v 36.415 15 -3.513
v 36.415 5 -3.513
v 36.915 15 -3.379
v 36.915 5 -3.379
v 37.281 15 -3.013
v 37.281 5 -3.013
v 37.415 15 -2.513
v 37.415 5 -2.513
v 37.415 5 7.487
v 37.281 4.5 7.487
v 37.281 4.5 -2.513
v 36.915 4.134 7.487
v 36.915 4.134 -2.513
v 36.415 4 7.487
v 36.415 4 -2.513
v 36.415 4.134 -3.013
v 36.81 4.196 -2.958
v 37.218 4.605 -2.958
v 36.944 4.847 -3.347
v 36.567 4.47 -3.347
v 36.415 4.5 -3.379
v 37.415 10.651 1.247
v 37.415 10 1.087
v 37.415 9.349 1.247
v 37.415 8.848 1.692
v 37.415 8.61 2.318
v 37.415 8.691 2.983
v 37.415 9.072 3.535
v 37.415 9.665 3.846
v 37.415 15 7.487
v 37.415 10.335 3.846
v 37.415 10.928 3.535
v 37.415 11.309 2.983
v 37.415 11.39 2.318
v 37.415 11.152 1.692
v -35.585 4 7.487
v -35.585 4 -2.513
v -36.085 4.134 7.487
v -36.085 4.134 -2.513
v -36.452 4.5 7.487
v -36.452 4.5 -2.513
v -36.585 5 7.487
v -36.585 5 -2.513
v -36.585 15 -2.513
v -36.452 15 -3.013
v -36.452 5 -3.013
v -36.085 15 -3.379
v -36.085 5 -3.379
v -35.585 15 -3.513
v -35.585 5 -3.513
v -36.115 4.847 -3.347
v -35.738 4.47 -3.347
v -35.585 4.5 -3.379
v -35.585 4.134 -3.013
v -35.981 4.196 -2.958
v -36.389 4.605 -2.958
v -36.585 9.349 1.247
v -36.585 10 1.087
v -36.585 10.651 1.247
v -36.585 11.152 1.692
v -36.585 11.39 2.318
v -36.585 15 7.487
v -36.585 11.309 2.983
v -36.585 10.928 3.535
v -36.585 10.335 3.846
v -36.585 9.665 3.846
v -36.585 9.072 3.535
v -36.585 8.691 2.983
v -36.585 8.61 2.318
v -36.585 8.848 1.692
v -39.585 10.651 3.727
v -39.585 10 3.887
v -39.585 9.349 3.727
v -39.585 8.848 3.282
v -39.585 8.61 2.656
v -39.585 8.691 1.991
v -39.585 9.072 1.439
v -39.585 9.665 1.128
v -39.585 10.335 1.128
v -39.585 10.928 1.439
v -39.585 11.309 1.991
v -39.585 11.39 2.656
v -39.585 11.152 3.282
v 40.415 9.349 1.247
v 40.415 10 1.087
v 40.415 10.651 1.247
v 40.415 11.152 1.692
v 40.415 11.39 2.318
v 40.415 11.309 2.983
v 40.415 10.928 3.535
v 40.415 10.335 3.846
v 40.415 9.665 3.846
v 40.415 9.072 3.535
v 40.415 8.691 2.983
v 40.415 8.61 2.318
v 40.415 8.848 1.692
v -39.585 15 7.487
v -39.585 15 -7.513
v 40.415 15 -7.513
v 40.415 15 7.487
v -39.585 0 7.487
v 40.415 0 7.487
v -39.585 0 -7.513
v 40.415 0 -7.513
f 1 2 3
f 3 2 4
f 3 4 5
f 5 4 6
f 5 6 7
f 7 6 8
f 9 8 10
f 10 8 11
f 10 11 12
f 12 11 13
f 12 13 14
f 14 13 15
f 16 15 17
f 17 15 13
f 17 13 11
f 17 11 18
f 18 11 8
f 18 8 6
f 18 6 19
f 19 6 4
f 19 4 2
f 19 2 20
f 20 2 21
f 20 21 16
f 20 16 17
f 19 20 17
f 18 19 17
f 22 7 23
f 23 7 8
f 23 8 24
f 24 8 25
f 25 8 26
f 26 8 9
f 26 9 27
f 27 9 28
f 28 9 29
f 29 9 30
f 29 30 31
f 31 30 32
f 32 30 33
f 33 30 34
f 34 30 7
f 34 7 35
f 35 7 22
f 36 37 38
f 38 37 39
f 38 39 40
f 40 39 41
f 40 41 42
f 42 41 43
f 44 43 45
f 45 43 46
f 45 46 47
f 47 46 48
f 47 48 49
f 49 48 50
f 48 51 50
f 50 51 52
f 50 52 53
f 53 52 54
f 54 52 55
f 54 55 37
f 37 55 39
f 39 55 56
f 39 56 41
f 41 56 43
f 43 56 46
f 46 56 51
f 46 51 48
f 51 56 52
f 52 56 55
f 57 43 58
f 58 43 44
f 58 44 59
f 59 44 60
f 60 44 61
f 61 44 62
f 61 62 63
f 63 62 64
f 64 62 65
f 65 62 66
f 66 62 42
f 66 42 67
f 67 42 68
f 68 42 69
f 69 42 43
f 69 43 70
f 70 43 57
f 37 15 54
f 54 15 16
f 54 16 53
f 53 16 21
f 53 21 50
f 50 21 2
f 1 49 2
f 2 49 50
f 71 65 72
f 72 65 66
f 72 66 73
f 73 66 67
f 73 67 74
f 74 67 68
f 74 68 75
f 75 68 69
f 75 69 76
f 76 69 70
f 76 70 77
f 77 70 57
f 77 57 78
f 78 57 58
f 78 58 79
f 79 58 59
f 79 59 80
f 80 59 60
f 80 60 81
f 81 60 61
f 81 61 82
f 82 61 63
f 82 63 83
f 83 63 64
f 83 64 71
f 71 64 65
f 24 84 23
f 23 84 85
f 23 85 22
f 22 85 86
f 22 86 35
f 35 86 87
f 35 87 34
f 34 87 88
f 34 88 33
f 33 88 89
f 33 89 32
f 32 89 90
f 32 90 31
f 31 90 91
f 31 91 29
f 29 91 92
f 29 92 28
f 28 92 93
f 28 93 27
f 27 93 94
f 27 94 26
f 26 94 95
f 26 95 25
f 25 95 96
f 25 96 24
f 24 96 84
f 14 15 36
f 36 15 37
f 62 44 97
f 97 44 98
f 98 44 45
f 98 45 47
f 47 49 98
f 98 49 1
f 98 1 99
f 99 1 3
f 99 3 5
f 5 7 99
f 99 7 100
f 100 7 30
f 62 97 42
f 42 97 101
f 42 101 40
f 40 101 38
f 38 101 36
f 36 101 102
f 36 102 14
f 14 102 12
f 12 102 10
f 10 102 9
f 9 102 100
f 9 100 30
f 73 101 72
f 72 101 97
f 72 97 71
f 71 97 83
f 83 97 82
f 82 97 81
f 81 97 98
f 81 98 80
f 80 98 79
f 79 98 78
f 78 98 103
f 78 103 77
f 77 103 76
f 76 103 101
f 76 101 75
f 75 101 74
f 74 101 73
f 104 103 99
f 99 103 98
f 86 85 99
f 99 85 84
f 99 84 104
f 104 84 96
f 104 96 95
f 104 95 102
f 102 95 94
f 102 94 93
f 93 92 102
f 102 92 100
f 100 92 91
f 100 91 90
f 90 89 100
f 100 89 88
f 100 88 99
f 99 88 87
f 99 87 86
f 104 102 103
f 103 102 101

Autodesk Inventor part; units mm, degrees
ref_plane "YZ Plane" through (0, 0, 0) normal (1, 0, 0) x (0, 1, 0)
ref_plane "XZ Plane" through (0, 0, 0) normal (0, 1, 0) x (-1, 0, 0)
ref_plane "XY Plane" through (0, 0, 0) normal (0, 0, 1) x (1, 0, 0)
sketch "Sketch1" plane through (0, 0, 0) normal (0, 1, 0) x (-1, 0, 0)
  line L0 (39.5855, 7.487) -> (-40.4145, 7.487)
  line L1 (-40.4145, 7.487) -> (-40.4145, -7.513)
  line L2 (-40.4145, -7.513) -> (39.5855, -7.513)
  line L3 (39.5855, -7.513) -> (39.5855, 7.487)
  point P0 (0, 0)
  dimension "d0" = 80
  dimension "d1" = 15
extrude "Extrusion1" add sketch "Sketch1" along normal blind 15
sketch "Sketch2" plane through (0, 15, 0) normal (0, 1, 0) x (1, 0, 0)
  line L0 (-39.5855, -7.487) -> (40.4145, -7.487) projected
  line L1 (-36.5855, -7.487) -> (37.4145, -7.487)
  line L2 (37.4145, -7.487) -> (37.4145, 3.513)
  line L3 (37.4145, 3.513) -> (-36.5855, 3.513)
  line L4 (-36.5855, 3.513) -> (-36.5855, -7.487)
  line L5 (40.4145, 7.513) -> (-39.5855, 7.513) projected
  line L6 (-39.5855, 7.513) -> (-39.5855, -7.487) projected
  line L7 (40.4145, -7.487) -> (40.4145, 7.513) projected
  point P0 (0, 0)
  point P1 (37.4145, -7.487)
  dimension "d4" = 4
  dimension "d5" = 3
  dimension "d6" = 3
extrude "Extrusion2" cut sketch "Sketch2" against normal blind 11 contours L4 L3 L2 L0
sketch "Sketch3" plane through (-39.5855, 0, -7.513) normal (-1, 0, 0) x (0, 0, 1)
  circle A0 centre (10, 10) radius 1.4
  line L0 (15, 4) -> (4, 4) projected
  line L1 (4, 15) -> (4, 4) projected
  point P0 (7.513, 0)
  dimension "d9" = 2.8
  dimension "d10" = 6
  dimension "d11" = 6
extrude "Extrusion3" cut sketch "Sketch3" against normal through all
fillet "Fillet1" radius 1 1 edges at (0.4145, 4, -3.513)
fillet "Fillet2" radius 1 3 edges at (-36.5855, 10, -3.513) (-36.5855, 4.2929, -3.2201) (-36.5855, 4, 2.487)
fillet "Fillet3" radius 1 3 edges at (37.4145, 4, 2.487) (37.4145, 4.2929, -3.2201) (37.4145, 10, -3.513)
properties part number "leg_8"
